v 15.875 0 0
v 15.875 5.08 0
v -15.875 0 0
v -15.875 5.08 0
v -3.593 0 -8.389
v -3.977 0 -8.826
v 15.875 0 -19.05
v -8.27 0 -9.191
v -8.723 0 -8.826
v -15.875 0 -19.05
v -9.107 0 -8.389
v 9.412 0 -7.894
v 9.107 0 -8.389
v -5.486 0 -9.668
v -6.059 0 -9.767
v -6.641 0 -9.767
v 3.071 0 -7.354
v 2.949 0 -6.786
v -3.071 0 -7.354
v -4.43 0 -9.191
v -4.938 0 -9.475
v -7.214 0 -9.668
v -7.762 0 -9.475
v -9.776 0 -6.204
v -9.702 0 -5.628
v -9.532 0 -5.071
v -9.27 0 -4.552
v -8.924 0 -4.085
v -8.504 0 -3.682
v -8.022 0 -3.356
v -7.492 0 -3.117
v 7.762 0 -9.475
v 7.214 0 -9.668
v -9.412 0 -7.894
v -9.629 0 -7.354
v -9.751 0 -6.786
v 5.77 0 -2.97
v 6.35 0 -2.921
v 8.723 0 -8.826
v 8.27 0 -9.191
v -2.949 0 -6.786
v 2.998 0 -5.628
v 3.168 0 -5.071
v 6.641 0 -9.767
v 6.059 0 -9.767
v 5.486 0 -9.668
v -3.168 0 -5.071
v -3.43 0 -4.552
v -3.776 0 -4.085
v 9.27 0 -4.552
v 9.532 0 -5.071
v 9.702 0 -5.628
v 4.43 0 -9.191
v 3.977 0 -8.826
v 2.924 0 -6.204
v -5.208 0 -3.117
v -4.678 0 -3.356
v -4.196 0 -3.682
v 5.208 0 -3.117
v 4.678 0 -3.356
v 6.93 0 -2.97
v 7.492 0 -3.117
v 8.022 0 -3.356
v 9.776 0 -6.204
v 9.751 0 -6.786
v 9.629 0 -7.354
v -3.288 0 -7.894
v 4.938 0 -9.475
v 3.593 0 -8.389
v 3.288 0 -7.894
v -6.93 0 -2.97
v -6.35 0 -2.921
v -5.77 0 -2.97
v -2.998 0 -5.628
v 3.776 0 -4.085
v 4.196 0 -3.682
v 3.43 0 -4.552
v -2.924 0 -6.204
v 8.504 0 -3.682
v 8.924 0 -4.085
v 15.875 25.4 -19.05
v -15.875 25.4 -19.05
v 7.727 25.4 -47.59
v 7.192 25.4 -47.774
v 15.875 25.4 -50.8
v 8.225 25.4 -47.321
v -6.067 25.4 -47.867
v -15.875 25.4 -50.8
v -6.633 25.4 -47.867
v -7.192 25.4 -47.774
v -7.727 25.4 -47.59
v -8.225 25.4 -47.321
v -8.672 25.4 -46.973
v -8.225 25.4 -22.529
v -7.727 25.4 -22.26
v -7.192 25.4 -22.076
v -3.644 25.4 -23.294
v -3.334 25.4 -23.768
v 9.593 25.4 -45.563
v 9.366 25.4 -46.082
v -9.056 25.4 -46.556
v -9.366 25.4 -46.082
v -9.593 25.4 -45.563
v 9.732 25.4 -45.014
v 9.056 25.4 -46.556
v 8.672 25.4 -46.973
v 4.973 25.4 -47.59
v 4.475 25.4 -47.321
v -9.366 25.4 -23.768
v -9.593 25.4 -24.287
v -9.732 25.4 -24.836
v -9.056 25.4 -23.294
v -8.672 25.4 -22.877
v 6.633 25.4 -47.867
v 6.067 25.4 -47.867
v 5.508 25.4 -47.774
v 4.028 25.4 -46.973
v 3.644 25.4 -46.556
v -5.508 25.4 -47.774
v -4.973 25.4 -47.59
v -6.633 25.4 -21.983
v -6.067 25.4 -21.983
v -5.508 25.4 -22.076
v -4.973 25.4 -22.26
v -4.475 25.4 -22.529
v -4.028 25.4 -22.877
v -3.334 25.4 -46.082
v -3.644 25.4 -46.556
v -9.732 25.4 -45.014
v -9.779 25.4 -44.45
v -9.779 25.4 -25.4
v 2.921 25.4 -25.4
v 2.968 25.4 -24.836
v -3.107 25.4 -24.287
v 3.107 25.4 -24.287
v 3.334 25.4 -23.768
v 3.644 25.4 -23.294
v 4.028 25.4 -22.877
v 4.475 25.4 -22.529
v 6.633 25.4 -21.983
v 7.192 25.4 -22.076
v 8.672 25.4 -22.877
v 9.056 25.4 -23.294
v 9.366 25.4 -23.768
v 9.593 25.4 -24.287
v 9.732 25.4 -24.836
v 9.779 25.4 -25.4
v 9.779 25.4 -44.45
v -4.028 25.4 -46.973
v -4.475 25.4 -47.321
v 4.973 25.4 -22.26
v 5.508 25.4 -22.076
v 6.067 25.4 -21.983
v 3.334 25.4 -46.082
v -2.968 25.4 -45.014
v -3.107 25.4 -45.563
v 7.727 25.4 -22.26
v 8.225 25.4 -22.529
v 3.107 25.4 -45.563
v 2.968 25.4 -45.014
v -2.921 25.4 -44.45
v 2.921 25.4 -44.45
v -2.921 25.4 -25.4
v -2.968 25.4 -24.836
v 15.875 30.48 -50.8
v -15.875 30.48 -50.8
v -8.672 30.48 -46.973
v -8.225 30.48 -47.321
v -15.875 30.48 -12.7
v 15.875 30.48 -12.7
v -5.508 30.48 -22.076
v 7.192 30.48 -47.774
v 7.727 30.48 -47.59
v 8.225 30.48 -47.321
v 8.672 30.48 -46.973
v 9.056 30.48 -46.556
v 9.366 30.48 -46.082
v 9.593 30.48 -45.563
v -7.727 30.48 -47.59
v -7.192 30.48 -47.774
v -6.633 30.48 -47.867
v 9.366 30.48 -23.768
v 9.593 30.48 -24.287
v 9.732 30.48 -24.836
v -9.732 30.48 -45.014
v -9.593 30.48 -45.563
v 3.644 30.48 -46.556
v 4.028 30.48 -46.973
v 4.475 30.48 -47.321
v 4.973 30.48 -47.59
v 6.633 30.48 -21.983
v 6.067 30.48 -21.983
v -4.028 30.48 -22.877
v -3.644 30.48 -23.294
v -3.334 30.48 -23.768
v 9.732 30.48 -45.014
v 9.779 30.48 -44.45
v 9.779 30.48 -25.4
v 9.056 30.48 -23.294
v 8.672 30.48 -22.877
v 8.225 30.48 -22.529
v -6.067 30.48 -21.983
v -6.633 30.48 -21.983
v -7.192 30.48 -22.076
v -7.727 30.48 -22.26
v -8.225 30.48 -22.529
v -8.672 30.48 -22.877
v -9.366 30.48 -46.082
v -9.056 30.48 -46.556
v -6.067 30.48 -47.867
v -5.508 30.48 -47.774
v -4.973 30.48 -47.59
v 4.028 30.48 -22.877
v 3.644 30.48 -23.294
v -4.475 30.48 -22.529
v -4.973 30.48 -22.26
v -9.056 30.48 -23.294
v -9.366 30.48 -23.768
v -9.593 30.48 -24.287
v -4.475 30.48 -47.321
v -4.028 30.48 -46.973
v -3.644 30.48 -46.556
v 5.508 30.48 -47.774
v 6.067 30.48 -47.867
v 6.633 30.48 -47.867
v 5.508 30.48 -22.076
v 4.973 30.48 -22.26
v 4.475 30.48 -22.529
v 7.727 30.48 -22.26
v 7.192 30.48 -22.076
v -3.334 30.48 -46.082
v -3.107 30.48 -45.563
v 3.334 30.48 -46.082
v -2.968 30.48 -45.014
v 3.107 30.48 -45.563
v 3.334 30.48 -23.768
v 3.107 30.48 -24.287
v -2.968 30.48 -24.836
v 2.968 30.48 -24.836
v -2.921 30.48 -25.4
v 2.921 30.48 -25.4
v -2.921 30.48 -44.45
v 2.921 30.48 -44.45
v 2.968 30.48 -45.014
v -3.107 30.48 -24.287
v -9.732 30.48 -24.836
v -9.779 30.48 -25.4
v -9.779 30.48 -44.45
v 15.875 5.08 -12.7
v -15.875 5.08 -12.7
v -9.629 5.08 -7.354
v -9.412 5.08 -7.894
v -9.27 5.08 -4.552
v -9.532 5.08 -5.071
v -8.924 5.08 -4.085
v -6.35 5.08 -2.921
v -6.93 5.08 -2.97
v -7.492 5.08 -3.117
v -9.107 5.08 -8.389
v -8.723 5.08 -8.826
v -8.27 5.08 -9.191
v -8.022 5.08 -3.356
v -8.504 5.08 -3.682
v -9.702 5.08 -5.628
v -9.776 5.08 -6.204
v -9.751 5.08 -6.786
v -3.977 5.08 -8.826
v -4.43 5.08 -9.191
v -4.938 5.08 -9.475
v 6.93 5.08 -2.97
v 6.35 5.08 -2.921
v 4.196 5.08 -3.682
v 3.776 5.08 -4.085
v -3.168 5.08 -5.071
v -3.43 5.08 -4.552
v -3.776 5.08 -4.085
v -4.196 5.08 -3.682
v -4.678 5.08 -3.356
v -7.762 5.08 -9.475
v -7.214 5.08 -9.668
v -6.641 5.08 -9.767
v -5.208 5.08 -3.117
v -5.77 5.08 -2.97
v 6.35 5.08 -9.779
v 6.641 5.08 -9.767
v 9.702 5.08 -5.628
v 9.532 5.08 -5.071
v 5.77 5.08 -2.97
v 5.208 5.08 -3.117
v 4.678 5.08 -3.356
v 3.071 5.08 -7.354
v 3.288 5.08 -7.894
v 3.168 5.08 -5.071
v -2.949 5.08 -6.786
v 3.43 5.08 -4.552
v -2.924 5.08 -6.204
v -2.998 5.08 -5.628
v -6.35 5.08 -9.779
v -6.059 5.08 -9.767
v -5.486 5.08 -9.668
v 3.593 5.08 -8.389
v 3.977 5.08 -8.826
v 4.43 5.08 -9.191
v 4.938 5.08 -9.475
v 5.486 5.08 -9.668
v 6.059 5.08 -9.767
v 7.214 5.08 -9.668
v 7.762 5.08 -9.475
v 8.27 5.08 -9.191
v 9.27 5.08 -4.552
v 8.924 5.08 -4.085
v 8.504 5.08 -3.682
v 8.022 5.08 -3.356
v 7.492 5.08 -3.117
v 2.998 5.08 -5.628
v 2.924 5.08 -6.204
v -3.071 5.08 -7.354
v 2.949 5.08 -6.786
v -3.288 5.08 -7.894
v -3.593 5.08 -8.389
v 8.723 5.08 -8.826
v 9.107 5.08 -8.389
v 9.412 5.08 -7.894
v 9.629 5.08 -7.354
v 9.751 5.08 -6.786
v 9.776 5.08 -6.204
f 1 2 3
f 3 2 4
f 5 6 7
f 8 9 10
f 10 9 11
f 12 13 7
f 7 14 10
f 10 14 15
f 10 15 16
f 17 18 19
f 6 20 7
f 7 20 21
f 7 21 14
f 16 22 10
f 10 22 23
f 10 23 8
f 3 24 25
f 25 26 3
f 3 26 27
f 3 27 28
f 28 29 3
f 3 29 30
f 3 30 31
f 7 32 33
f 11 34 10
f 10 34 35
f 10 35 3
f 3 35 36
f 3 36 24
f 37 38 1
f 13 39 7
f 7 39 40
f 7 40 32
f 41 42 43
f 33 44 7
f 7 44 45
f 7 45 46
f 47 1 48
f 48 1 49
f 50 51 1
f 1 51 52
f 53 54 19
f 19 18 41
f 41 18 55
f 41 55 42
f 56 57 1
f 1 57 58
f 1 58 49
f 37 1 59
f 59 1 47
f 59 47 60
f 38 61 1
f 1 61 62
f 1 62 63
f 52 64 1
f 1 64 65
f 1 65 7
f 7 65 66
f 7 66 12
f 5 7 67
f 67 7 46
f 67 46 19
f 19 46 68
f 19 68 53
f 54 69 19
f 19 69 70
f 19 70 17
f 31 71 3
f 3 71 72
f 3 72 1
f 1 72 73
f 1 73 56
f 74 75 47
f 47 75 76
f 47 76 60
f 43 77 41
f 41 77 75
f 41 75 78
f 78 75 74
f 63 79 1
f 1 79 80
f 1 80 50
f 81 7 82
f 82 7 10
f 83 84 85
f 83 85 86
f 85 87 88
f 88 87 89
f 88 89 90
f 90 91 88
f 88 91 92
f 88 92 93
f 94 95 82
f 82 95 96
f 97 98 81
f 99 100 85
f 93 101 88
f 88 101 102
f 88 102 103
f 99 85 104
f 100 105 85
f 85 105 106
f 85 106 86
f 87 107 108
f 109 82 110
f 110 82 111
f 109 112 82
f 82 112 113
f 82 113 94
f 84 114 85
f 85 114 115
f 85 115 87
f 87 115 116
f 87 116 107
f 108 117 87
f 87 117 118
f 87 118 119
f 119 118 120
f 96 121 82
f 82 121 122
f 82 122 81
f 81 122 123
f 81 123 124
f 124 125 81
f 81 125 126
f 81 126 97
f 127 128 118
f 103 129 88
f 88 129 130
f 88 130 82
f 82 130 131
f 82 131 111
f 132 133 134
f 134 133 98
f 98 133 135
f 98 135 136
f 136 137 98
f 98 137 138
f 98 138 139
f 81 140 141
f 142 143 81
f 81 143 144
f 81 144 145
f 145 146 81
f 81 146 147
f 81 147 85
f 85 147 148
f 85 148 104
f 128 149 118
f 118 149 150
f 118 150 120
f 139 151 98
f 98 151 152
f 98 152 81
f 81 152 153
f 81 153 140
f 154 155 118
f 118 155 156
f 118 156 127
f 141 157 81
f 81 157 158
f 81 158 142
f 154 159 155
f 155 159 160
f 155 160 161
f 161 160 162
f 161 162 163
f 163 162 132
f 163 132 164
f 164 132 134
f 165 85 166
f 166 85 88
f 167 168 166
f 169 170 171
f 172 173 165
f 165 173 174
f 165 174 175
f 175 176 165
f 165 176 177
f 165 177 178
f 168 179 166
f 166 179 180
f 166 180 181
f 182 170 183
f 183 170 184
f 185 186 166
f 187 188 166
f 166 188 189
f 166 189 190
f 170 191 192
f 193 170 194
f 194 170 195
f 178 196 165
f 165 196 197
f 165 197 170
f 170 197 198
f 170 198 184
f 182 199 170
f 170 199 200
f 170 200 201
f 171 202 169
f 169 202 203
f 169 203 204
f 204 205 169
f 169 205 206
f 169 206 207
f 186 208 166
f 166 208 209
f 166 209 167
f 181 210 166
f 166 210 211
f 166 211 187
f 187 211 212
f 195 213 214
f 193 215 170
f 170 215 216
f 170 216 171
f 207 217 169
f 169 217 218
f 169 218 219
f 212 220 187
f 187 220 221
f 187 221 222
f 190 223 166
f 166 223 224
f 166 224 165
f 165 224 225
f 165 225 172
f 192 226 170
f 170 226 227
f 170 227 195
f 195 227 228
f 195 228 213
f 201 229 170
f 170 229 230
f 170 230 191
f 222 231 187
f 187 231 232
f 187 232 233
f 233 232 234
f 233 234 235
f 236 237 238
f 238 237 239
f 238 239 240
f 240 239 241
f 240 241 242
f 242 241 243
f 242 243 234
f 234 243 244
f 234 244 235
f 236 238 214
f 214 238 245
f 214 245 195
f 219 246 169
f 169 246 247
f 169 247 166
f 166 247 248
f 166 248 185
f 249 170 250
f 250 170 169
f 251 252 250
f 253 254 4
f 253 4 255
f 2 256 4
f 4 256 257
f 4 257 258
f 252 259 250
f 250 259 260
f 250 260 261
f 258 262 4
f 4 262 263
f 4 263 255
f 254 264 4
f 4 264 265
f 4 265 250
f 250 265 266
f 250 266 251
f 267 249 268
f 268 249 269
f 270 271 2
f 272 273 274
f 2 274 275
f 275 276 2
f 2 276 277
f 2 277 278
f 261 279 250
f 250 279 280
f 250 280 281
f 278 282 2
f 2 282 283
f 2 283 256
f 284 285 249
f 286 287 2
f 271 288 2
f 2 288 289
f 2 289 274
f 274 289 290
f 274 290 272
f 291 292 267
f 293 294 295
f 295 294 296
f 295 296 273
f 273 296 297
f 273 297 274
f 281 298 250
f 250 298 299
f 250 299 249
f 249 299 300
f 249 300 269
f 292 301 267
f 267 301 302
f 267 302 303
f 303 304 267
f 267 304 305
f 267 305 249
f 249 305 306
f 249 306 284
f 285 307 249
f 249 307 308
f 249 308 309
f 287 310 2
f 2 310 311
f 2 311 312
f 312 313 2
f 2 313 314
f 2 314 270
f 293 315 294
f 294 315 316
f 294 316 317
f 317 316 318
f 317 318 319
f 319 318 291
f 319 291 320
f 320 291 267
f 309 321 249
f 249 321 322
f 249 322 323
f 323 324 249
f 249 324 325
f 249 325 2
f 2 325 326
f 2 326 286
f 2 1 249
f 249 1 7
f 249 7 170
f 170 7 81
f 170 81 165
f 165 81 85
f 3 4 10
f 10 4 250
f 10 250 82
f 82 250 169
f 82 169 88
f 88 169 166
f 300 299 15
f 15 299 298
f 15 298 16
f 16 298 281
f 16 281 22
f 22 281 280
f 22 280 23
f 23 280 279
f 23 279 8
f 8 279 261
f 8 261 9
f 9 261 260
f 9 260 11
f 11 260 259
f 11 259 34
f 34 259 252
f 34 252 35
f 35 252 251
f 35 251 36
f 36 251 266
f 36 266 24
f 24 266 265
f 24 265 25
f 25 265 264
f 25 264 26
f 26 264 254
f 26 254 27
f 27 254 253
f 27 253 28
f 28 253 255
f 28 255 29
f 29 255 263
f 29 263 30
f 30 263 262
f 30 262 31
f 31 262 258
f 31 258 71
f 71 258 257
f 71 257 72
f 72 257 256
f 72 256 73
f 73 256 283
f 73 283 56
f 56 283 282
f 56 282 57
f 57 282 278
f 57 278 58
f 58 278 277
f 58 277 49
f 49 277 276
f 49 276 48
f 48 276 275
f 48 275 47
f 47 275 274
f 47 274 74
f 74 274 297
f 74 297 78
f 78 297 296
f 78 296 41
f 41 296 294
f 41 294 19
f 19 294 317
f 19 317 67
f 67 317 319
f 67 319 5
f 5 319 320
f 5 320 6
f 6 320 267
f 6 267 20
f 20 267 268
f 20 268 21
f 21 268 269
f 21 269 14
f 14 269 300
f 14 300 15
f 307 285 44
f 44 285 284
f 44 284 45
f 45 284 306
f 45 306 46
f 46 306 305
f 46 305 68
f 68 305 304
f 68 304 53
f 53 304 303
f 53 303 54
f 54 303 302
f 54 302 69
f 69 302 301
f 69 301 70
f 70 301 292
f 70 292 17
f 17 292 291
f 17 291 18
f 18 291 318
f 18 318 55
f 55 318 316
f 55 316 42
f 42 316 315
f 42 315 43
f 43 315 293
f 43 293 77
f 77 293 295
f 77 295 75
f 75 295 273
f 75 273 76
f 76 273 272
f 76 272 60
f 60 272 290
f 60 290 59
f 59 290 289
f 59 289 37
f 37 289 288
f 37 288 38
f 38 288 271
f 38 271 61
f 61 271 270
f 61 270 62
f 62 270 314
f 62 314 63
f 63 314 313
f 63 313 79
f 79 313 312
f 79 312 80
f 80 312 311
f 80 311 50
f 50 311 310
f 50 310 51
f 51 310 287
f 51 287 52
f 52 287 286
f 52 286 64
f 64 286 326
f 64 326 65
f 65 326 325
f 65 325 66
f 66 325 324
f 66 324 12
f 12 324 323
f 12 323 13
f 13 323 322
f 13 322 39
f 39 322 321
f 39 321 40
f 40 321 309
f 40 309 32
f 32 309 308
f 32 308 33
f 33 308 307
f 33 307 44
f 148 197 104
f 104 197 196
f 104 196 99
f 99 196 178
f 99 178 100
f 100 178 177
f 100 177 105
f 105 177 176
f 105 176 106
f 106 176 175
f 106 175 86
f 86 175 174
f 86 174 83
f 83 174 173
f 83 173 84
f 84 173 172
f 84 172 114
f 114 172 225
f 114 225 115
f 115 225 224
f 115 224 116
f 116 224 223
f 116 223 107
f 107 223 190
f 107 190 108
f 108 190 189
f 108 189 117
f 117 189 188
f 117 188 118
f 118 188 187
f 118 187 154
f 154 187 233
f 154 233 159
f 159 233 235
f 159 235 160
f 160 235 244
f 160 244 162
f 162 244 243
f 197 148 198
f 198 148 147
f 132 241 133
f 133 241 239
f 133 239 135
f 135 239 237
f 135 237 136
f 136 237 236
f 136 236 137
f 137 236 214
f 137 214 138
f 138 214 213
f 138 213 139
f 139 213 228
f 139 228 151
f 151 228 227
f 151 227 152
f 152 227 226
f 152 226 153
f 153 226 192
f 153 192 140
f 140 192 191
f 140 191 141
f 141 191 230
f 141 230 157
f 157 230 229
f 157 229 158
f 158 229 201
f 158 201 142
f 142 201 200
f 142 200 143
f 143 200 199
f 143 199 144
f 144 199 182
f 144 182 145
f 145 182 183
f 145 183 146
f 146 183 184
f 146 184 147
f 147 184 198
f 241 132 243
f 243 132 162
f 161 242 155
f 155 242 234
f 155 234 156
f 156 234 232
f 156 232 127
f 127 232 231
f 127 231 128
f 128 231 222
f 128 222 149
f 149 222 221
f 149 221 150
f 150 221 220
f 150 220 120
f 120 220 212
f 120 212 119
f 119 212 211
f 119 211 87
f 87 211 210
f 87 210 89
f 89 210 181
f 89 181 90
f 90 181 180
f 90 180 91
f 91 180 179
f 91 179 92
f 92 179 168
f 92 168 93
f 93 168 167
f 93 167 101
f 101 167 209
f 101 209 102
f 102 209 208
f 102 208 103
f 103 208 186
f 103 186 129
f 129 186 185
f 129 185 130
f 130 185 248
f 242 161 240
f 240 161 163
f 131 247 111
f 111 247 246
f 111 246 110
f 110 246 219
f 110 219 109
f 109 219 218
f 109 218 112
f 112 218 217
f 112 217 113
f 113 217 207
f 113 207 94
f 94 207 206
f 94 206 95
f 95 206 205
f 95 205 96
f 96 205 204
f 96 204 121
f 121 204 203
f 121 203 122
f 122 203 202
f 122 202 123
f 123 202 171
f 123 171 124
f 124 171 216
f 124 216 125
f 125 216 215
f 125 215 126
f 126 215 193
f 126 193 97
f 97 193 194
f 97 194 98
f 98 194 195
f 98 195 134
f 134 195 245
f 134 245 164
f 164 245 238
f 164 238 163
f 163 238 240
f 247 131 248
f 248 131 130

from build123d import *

# Parameters (mm, degrees)
BOSS_EXTRUDE1_DEPTH     = 15.875
CUT_EXTRUDE1_DEPTH      = 59.973007597
CUT_EXTRUDE1_DEPTH_BACK = 59.973007597
SKETCH2_R               = 3.429


with BuildPart() as part:
    # Sketch1 → Boss-Extrude1 (new, symmetric)
    with BuildSketch(Plane(origin=(0, 0, 0), x_dir=(0, 0, -1), z_dir=(1, 0, 0))):
        Polygon((0, 0), (19.05, 0), (19.05, 25.4), (31.75, 25.4), (50.8, 25.4), (50.8, 30.48), (31.75, 30.48), (12.7, 30.48), (12.7, 5.08), (0, 5.08), align=None)
    extrude(amount=BOSS_EXTRUDE1_DEPTH, both=True)

    # Sketch2 → Cut-Extrude1 (cut, two sides: drawn at the far end of the back side and taken through both)
    with BuildSketch(Plane(origin=(0, 5.08, 0), x_dir=(1, 0, 0), z_dir=(0, 1, 0)).offset(-CUT_EXTRUDE1_DEPTH_BACK)):
        with Locations(Location((-6.35, 6.35, 0), (0, 0, 270))):
            Circle(SKETCH2_R)
        with Locations(Location((6.35, 6.35, 0), (0, 0, 270))):
            Circle(SKETCH2_R)
        with BuildLine():
            Line((-2.921, 44.45), (-2.921, 25.4))
            ThreePointArc((-2.921, 25.4), (-6.35, 21.971), (-9.779, 25.4))
            Line((-9.779, 25.4), (-9.779, 44.45))
            ThreePointArc((-9.779, 44.45), (-6.35, 47.879), (-2.921, 44.45))
        make_face()
        with BuildLine():
            Line((9.779, 44.45), (9.779, 25.4))
            ThreePointArc((9.779, 25.4), (6.35, 21.971), (2.921, 25.4))
            Line((2.921, 25.4), (2.921, 44.45))
            ThreePointArc((2.921, 44.45), (6.35, 47.879), (9.779, 44.45))
        make_face()
    extrude(amount=CUT_EXTRUDE1_DEPTH + CUT_EXTRUDE1_DEPTH_BACK, mode=Mode.SUBTRACT)


solid = part.part
